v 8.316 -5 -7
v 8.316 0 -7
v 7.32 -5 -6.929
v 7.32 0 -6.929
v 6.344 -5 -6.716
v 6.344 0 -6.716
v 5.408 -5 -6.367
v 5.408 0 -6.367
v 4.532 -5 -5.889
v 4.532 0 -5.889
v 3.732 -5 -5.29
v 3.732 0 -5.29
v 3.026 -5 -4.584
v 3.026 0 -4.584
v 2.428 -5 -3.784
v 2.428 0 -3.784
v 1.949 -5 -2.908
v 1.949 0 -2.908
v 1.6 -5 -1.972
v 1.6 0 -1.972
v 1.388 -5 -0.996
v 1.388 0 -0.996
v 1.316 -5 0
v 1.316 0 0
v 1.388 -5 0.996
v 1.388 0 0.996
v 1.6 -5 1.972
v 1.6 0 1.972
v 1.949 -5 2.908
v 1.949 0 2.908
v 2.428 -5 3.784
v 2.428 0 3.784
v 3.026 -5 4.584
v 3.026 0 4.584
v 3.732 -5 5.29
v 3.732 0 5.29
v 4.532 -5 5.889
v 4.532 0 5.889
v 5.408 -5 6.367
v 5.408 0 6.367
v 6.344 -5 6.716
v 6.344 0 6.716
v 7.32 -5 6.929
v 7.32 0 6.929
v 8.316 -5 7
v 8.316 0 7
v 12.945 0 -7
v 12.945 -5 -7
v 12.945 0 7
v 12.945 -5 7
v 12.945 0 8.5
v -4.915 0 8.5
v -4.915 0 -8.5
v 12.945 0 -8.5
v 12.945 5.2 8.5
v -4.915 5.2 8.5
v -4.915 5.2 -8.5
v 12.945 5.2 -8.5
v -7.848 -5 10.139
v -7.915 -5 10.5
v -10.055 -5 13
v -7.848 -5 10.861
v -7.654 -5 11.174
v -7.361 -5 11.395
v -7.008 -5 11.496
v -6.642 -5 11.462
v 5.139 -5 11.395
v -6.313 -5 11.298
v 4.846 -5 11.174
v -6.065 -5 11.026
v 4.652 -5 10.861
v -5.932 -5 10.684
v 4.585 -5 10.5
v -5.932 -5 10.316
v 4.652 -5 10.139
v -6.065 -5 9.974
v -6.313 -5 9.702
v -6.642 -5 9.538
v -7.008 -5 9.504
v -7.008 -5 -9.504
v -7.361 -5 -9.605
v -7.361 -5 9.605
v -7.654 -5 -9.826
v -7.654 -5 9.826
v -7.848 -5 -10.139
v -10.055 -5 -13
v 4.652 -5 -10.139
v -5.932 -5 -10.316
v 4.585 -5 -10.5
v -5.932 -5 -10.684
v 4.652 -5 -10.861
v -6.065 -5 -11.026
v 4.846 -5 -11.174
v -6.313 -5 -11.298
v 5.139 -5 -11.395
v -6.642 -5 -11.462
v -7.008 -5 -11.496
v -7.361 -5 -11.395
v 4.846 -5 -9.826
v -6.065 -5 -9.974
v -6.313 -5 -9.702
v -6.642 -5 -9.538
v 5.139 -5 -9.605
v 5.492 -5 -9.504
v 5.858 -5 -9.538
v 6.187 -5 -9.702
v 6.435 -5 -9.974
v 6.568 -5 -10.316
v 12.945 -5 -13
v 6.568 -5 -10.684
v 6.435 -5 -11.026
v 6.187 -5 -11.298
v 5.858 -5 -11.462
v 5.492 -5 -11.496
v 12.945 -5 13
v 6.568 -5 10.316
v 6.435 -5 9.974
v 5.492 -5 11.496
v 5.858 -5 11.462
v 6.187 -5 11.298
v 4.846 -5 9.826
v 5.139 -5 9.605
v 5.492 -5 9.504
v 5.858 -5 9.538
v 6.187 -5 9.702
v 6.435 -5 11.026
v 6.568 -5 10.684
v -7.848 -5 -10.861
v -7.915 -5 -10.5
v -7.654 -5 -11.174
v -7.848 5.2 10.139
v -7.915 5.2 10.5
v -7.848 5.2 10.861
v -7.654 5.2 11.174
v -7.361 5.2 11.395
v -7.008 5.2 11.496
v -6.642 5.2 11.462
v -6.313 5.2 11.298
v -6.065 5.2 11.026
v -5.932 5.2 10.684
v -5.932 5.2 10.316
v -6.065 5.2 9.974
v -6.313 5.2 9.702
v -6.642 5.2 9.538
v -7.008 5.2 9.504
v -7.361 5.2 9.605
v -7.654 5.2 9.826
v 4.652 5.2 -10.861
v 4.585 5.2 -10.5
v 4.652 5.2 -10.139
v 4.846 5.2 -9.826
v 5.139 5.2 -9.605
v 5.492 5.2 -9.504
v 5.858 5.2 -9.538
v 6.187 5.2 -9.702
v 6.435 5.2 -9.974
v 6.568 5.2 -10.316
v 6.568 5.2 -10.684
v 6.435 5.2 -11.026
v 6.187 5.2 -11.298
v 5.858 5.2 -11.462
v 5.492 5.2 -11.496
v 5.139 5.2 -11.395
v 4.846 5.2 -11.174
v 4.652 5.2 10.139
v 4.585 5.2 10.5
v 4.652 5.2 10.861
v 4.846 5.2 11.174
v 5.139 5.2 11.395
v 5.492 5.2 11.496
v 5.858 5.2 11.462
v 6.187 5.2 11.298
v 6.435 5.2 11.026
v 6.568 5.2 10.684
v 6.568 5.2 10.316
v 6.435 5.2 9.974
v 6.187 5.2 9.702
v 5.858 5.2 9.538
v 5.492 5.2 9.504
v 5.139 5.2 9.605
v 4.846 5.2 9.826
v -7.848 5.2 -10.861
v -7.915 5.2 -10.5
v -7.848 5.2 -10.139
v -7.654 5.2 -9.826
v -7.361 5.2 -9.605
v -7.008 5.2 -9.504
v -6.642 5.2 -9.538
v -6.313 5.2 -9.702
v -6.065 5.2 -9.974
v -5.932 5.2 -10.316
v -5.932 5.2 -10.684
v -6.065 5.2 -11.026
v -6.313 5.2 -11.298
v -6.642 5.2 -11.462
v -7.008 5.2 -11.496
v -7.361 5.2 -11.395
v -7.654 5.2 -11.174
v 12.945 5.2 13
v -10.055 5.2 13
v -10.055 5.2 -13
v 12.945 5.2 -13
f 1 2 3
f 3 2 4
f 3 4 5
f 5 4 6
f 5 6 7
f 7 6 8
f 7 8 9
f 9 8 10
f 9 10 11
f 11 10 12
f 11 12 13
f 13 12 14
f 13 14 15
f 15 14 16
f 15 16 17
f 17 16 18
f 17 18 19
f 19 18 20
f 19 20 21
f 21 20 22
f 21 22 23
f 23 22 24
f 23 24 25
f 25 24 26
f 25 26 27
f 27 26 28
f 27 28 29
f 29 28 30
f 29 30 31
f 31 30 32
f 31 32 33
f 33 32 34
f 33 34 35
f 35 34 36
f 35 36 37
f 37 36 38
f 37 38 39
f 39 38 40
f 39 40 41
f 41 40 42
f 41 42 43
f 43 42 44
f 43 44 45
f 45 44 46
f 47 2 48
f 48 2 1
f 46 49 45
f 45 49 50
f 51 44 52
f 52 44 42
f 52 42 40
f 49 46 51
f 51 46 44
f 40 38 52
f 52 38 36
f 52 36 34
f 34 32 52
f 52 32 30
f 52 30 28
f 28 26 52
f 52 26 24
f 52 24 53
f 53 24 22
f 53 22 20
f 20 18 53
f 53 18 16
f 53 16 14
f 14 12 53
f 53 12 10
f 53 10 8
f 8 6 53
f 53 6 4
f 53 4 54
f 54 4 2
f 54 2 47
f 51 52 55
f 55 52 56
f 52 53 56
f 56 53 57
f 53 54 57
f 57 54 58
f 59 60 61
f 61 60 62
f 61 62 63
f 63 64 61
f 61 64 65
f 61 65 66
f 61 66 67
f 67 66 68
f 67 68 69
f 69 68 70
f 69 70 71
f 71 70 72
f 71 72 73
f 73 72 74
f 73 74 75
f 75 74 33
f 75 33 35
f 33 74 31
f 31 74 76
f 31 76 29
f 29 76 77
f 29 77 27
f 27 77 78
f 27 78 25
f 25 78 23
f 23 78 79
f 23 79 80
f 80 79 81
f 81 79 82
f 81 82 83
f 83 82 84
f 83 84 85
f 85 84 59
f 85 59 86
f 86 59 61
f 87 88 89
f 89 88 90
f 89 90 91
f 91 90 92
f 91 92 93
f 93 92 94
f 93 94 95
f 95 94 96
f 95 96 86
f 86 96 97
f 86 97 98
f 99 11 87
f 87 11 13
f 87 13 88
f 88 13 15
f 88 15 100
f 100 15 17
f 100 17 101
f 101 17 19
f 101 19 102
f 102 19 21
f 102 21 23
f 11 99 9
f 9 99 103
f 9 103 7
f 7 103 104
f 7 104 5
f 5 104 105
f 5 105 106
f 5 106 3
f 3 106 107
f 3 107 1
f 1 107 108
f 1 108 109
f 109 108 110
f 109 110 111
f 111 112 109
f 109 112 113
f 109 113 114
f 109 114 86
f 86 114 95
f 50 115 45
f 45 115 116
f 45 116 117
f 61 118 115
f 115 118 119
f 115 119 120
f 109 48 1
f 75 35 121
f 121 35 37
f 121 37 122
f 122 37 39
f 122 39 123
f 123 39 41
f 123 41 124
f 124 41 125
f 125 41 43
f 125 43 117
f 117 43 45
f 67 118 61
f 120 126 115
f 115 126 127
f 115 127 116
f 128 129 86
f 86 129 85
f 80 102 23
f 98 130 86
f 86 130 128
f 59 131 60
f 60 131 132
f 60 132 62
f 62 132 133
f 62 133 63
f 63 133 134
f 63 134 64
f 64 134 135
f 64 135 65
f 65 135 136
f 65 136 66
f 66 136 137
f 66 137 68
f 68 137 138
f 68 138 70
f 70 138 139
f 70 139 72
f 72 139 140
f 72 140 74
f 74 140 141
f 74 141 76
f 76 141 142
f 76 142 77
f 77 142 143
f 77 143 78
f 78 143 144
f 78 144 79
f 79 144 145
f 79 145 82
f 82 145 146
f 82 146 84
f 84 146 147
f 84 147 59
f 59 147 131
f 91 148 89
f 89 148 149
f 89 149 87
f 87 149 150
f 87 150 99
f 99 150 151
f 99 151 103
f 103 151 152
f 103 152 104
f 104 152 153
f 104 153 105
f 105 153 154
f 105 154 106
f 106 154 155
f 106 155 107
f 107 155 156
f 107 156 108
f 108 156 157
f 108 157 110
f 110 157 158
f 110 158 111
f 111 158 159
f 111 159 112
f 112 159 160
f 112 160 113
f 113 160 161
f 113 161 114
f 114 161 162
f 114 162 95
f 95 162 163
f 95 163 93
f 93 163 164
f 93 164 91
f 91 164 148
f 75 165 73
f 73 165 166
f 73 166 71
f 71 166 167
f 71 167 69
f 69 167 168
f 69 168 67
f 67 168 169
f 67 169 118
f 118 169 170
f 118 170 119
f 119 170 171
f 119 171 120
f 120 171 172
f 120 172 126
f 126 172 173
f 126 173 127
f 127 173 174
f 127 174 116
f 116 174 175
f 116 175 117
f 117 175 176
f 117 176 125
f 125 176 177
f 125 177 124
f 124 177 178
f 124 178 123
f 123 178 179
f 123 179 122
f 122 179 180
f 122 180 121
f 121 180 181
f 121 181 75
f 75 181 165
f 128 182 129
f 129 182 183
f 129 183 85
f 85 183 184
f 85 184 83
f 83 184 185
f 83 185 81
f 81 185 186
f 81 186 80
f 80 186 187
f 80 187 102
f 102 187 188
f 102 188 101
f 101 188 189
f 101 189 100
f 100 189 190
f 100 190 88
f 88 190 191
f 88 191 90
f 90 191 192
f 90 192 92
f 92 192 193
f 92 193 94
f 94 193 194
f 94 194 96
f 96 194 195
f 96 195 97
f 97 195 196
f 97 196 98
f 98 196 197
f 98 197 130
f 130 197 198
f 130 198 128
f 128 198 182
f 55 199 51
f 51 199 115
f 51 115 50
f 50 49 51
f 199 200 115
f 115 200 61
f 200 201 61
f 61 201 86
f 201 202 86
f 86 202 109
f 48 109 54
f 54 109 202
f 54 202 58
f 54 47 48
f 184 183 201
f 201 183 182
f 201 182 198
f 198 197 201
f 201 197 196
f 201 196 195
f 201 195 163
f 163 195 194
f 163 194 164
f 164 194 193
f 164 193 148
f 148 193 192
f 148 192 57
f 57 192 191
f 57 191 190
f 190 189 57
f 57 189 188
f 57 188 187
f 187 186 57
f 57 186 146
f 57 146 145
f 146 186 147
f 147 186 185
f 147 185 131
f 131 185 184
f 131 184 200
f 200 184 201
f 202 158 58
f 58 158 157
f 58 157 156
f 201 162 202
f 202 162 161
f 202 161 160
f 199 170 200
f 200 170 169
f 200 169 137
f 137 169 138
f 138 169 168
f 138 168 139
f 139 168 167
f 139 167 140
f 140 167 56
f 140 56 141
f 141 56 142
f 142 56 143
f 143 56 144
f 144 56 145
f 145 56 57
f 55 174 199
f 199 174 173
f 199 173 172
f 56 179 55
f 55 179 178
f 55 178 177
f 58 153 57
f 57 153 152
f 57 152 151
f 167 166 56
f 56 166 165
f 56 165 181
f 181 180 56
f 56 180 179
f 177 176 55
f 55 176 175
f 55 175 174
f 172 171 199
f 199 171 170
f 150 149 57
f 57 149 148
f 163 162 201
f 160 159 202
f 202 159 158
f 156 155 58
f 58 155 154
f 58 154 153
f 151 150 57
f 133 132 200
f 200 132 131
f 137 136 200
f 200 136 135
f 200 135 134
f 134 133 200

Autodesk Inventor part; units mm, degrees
ref_plane "YZ Plane" through (0, 0, 0) normal (1, 0, 0) x (0, 1, 0)
ref_plane "XZ Plane" through (0, 0, 0) normal (0, 1, 0) x (-1, 0, 0)
ref_plane "XY Plane" through (0, 0, 0) normal (0, 0, 1) x (1, 0, 0)
sketch "スケッチ1" plane through (0, 0, 0) normal (0, 1, 0) x (-1, 0, 0)
  line L0 (10.0552, 13) -> (-14.9448, 13)
  line L1 (-14.9448, 13) -> (-14.9448, -13)
  line L2 (-14.9448, -13) -> (10.0552, -13)
  line L3 (10.0552, -13) -> (10.0552, 13)
  line L4 (10.0552, 0) -> (-14.9448, 0)
  circle A0 centre (6.9152, 10.5) radius 1
  circle A1 centre (6.9152, 10.5) radius 2
  circle A2 centre (-5.5848, 10.5) radius 2
  circle A3 centre (-5.5848, 10.5) radius 1
  circle A4 centre (6.9152, -10.5) radius 2
  circle A5 centre (6.9152, -10.5) radius 1
  circle A6 centre (-5.5848, -10.5) radius 2
  circle A7 centre (-5.5848, -10.5) radius 1
  circle A8 centre (-8.3163, 0) radius 7
  line L5 (-8.3163, 7) -> (-14.9448, 7)
  line L6 (-8.3163, -7) -> (-14.9448, -7)
  line L7 (10.0552, 8.5) -> (-14.9448, 8.5)
  line L8 (4.9152, -13) -> (4.9152, 13)
  line L9 (10.0552, -8.5) -> (-14.9448, -8.5)
  line L10 (-12.9448, 13) -> (-12.9448, -13)
  point P0 (0, 0)
  point P1 (4.9152, 8.5)
  point P2 (4.9152, -8.5)
  point P3 (-5.5848, -8.5)
  point P4 (-5.5848, 8.5)
  point P5 (-12.9448, -8.5)
  point P6 (-12.9448, 8.5)
  point P7 (-12.9448, 7)
  point P8 (-12.9448, -7)
  dimension "d0" = 26
  dimension "d1" = 25
  dimension "d2" = 2
  dimension "d3" = 2.5
  dimension "d4" = 3.14
  dimension "d8" = 12.5
  dimension "d11" = 21
  dimension "d14" = 14
  dimension "d22" = 18.5
  dimension "d23" = 2
extrude "押し出し1" add sketch "スケッチ1" along normal blind 5.2 and the other way blind 5 contours L3 L7 A1 L8 L0 | A2 | L8 L7 L10 L0 | L3 L4 L8 L7 | A1 | A1 L7 L8 | L3 L9 L8 L4 | L3 L2 L8 A4 L9 | A4 | A4 L8 L9 | A6 | L8 L2 L10 L9
extrude "押し出し2" add sketch "スケッチ1" against normal blind 5 contours L3 L7 A1 L8 L0 | L8 L7 L10 L0 | L3 L4 L8 L7 | A1 L7 L8 | L3 L9 L8 L4 | L7 L8 L4 A8 L5 L10 | L3 L2 L8 A4 L9 | L8 L9 L10 L6 A8 L4 | A4 L8 L9 | L8 L2 L10 L9
